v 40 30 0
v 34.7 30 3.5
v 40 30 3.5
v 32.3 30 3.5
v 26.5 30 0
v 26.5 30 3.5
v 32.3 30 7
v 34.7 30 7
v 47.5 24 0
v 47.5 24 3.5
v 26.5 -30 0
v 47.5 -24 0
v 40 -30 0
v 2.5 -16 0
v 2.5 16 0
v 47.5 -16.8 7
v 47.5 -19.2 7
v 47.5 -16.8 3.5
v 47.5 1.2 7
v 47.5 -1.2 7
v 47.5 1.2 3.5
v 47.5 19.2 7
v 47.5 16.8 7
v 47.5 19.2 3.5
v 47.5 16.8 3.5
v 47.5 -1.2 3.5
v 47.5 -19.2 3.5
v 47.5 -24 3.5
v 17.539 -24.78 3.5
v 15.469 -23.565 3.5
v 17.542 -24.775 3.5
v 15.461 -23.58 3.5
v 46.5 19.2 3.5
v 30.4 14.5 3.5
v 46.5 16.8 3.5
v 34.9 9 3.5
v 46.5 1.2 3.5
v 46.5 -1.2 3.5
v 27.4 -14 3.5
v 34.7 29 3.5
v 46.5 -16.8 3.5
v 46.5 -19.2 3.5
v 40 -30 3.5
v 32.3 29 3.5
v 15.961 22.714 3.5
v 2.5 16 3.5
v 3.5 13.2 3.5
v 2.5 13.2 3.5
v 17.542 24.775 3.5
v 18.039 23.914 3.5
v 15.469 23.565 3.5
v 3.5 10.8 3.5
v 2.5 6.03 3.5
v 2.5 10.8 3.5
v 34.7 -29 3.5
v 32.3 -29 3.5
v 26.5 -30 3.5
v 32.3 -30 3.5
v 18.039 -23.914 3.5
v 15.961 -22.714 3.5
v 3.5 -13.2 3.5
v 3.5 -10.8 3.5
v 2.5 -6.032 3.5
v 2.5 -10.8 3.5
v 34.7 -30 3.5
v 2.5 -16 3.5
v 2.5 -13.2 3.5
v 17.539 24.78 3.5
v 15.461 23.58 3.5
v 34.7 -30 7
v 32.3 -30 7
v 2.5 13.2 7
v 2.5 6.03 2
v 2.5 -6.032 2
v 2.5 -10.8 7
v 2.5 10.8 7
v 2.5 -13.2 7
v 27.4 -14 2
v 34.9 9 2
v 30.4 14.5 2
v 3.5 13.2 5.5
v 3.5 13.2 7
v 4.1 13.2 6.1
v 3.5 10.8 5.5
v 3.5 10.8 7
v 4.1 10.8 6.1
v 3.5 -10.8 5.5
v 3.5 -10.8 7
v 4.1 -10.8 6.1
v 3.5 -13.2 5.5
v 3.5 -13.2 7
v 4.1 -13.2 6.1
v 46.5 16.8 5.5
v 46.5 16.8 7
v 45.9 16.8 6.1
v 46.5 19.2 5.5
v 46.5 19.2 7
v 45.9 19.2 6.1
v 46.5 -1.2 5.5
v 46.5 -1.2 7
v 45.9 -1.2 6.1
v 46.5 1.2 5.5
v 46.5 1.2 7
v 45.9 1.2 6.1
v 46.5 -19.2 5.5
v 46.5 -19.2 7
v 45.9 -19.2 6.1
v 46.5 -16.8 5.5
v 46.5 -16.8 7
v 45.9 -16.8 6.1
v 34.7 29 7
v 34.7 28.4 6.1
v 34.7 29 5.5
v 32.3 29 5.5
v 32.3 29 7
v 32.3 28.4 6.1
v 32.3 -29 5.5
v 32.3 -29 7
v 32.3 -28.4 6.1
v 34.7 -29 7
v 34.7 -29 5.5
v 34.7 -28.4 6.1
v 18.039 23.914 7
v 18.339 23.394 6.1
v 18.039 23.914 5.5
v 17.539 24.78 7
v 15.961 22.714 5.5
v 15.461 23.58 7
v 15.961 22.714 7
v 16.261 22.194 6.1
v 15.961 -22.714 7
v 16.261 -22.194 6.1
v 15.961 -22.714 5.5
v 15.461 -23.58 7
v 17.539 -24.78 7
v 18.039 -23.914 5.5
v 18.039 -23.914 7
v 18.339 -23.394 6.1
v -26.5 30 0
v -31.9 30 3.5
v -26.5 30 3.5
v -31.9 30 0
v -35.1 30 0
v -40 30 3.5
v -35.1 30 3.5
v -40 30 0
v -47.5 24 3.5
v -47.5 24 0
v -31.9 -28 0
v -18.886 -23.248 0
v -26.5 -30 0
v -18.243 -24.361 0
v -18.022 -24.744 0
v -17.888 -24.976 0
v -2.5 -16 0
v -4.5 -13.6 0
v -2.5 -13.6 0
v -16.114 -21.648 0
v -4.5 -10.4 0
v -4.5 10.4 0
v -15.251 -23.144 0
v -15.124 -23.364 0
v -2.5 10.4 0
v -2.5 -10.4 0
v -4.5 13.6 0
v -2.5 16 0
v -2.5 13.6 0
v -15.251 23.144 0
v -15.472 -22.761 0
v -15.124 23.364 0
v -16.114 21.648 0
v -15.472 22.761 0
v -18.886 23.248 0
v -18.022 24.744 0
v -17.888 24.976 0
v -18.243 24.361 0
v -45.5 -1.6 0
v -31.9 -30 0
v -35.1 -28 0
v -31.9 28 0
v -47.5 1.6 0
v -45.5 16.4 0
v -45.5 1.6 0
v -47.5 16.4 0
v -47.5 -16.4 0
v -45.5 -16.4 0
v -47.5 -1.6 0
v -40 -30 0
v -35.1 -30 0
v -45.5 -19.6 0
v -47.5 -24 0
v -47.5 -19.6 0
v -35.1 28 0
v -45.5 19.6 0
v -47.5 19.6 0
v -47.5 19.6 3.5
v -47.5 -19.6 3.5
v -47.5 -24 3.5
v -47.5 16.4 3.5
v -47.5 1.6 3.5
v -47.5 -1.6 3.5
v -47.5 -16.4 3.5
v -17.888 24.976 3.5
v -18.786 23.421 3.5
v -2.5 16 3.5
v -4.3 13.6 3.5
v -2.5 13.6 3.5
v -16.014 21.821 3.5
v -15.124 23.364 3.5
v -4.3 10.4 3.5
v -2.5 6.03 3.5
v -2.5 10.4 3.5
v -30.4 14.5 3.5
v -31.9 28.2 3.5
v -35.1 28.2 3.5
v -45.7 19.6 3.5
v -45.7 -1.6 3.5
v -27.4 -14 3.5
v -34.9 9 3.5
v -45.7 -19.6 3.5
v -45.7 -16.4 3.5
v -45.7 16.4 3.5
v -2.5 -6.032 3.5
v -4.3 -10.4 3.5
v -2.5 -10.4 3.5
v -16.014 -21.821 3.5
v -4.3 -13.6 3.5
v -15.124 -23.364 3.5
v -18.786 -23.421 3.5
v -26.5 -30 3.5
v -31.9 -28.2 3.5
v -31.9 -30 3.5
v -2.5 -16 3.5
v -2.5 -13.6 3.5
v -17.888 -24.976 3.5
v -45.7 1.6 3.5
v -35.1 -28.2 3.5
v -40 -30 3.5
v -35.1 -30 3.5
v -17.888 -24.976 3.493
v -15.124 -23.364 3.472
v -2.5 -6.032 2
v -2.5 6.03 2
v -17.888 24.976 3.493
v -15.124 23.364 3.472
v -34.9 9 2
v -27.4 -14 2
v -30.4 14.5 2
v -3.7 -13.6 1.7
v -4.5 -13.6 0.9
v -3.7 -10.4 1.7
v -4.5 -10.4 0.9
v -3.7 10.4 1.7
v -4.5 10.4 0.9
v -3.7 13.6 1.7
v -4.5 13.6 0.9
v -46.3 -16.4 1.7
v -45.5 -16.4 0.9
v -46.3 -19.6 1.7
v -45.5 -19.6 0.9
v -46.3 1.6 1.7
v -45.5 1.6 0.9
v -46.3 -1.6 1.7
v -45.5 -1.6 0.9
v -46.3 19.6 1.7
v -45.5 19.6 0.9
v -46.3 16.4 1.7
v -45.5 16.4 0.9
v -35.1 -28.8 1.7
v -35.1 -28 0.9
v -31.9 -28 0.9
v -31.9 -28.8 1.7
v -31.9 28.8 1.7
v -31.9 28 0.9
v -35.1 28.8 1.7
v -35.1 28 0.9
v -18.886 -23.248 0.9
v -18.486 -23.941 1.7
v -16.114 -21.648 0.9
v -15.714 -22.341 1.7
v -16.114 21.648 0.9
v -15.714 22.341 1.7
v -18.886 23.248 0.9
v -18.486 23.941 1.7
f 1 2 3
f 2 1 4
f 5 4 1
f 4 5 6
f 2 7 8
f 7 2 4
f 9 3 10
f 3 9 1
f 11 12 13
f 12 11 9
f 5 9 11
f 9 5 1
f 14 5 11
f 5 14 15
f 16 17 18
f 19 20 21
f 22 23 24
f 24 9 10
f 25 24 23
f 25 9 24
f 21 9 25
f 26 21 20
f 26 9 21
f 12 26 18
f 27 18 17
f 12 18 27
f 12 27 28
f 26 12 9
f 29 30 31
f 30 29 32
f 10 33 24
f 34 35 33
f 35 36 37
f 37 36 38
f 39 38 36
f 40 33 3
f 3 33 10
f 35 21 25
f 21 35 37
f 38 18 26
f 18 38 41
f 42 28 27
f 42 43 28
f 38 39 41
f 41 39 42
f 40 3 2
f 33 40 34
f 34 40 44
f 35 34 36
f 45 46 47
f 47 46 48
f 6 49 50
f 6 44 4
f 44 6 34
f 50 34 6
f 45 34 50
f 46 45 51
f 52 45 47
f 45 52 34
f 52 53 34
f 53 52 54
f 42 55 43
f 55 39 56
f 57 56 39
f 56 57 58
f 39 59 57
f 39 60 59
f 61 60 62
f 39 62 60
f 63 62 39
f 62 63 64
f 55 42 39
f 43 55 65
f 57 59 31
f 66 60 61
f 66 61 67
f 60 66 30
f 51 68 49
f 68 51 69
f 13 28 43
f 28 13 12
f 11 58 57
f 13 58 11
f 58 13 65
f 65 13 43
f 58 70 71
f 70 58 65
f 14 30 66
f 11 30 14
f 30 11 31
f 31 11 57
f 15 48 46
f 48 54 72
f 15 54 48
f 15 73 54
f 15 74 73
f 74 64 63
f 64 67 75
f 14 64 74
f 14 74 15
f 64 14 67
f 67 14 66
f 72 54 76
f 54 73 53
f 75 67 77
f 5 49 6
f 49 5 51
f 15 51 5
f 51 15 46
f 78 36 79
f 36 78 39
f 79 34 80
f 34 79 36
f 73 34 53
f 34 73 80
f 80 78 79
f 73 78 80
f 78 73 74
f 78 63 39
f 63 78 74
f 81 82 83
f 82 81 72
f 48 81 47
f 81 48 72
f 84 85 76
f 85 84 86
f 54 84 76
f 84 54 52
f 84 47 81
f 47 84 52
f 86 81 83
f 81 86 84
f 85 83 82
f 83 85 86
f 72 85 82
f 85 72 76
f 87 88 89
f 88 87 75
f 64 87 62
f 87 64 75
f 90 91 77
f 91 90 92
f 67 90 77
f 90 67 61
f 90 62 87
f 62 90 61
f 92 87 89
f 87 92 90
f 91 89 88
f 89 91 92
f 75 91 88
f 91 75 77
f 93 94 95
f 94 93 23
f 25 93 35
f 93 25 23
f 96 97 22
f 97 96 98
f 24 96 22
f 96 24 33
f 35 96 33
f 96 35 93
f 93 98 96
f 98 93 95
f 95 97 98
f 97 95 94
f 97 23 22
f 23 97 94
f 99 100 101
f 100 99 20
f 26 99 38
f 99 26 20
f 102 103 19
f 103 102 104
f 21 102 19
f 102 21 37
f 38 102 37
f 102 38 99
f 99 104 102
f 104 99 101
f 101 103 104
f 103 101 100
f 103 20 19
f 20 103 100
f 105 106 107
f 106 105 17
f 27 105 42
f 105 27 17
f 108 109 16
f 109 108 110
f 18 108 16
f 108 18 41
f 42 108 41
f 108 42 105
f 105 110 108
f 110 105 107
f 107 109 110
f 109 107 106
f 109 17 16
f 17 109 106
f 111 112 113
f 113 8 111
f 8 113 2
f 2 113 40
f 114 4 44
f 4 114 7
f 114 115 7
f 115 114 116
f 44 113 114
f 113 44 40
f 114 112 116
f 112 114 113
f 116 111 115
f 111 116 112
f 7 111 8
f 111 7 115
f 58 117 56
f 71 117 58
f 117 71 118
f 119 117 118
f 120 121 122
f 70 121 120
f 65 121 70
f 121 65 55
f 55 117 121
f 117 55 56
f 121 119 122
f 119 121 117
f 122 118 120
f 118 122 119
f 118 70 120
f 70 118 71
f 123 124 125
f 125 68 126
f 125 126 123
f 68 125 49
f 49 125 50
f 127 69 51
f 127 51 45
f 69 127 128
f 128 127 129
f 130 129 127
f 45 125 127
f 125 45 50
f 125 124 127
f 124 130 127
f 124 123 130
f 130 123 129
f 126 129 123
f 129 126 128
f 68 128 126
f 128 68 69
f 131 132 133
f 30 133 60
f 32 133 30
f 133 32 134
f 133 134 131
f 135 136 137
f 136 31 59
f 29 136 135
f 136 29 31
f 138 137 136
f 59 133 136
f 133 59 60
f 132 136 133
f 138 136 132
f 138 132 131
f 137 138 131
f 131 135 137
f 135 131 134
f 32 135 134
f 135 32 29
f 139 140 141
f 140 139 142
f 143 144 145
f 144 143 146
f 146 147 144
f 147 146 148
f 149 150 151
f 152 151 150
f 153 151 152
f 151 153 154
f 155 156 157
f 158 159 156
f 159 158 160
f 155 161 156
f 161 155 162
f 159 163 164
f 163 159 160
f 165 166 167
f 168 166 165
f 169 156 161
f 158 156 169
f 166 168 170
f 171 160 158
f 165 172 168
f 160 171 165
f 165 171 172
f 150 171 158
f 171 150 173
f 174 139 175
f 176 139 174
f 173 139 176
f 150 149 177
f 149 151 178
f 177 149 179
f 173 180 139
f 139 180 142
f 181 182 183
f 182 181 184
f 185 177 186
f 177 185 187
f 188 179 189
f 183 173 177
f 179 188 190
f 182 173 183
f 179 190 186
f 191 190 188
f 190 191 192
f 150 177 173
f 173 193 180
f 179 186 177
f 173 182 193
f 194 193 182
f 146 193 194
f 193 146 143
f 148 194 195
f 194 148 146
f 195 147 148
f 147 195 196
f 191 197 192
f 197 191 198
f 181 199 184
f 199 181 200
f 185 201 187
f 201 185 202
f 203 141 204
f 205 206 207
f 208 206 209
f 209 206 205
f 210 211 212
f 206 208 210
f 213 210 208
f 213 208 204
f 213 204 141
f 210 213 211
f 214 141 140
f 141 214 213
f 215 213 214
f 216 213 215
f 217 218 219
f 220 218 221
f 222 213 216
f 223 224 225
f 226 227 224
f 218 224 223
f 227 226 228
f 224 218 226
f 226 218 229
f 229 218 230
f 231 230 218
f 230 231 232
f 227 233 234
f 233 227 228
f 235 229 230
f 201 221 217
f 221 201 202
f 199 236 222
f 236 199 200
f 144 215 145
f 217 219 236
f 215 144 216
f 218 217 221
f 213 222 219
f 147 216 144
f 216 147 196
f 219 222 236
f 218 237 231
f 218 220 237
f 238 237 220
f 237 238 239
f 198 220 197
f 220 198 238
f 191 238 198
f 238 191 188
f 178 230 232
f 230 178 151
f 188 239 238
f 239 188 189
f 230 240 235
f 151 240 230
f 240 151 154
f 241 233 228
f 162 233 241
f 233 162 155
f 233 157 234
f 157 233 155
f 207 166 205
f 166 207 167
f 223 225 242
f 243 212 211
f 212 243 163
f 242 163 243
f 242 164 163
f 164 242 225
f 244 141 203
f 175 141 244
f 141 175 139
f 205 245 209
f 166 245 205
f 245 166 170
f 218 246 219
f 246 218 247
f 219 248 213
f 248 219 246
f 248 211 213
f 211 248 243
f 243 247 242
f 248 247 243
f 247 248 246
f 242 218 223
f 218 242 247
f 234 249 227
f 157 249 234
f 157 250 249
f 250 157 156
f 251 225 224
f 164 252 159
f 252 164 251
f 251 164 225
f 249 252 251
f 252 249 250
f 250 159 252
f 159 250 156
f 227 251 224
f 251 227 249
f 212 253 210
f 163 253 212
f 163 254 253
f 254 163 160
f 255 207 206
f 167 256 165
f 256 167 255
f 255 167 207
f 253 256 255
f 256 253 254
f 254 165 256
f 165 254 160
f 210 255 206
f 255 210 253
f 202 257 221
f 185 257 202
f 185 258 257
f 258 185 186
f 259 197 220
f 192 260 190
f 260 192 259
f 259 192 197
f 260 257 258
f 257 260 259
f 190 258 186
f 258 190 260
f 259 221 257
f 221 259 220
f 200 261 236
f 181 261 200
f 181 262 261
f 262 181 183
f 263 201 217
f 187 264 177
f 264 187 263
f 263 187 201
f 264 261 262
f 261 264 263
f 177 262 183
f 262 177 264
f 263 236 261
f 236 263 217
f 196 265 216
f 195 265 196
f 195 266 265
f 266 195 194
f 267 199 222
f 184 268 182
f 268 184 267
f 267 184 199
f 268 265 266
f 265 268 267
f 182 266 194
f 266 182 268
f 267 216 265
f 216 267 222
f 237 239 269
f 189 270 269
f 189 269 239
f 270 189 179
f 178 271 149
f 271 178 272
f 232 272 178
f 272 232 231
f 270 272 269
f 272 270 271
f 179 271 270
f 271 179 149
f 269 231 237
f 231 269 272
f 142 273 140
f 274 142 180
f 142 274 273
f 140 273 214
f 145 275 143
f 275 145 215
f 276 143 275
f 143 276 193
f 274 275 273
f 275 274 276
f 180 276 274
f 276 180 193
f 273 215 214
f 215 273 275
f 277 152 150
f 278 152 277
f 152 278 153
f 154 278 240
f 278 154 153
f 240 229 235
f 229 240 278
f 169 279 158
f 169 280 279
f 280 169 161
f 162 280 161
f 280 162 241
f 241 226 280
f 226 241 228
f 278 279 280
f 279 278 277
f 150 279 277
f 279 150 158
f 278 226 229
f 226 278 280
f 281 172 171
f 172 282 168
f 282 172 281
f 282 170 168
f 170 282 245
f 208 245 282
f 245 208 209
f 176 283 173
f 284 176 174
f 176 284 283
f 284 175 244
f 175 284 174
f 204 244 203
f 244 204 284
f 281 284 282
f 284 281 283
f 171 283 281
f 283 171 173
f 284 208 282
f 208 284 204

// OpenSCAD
module key_shape() {
    points = [
        [0,-6],
        [25,-14],
        [32.5,9],
        [28,14.5],
        [0,6]
    ];
    polygon(points);
}

module outer_shape() {
    points = [
        [0,-16],
        [24,-30],
        [37.5,-30],
        [45,-24],
        [45,24],
        [37.5,30],
        [24,30],
        [0,16]
    ];
    polygon(points);
}

module clip() {
    translate([0,1.2,0]) rotate([90,0,0]) linear_extrude(2.4) union() {
        square([1,3.5]);
        polygon([[1,2],[1.6,2.6],[1,3.5]]); 
    }
}

module cliphole() {
    translate([0,1.6,0]) rotate([90,0,0])linear_extrude(3.2) union() {
        polygon([[0,0],[1.8,0],[1.2,1.8],[2,2.6],[2,4],[0,4]]); 
    }
}

module clips() {
    translate([0,12,3.5]) rotate([0,0,0]) clip();
    translate([0,-12,3.5]) rotate([0,0,0]) clip();
    translate([45,18,3.5]) rotate([0,0,180]) clip();
    translate([45,0,3.5]) rotate([0,0,180]) clip();
    translate([45,-18,3.5]) rotate([0,0,180]) clip();
    translate([31,30,3.5]) rotate([0,0,-90]) clip();
    translate([31,-30,3.5]) rotate([0,0,90]) clip();
    translate([14,24.18,3.5]) rotate([0,0,-60]) clip();
    translate([14,-24.18,3.5]) rotate([0,0,60]) clip();
}

module clipholes() {
    translate([0,0,7]) rotate([180,0,0]) mirror([1,0,0]) {
        translate([0,12,3.5]) rotate([0,0,0]) cliphole();
        translate([0,-12,3.5]) rotate([0,0,0]) cliphole();
        translate([45,18,3.5]) rotate([0,0,180]) cliphole();
        translate([45,0,3.5]) rotate([0,0,180]) cliphole();
        translate([45,-18,3.5]) rotate([0,0,180]) cliphole();
        translate([31,30,3.5]) rotate([0,0,-90]) cliphole();
        translate([31,-30,3.5]) rotate([0,0,90]) cliphole();
        translate([14,24.18,3.5]) rotate([0,0,-60]) cliphole();
        translate([14,-24.18,3.5]) rotate([0,0,60]) cliphole();
    }
}

module right_half_key_handle() {
    thickness = 7;
    key_thickness = 3;
    difference() {
        linear_extrude(thickness/2) outer_shape();
        translate([-0.1,0,thickness/2-key_thickness/2]) linear_extrude(key_thickness/2+0.1) key_shape();
    }
}

module right_half_key_handle_with_clips() {
    right_half_key_handle();
    clips();
}

module left_half_key_handle() {
    difference()    {
        mirror([1,0,0]) right_half_key_handle();
        clipholes();
    }
}


//comment one if you want to print only the other
translate([2.5,0,0]) right_half_key_handle_with_clips();
translate([-2.5,0,0]) left_half_key_handle();
